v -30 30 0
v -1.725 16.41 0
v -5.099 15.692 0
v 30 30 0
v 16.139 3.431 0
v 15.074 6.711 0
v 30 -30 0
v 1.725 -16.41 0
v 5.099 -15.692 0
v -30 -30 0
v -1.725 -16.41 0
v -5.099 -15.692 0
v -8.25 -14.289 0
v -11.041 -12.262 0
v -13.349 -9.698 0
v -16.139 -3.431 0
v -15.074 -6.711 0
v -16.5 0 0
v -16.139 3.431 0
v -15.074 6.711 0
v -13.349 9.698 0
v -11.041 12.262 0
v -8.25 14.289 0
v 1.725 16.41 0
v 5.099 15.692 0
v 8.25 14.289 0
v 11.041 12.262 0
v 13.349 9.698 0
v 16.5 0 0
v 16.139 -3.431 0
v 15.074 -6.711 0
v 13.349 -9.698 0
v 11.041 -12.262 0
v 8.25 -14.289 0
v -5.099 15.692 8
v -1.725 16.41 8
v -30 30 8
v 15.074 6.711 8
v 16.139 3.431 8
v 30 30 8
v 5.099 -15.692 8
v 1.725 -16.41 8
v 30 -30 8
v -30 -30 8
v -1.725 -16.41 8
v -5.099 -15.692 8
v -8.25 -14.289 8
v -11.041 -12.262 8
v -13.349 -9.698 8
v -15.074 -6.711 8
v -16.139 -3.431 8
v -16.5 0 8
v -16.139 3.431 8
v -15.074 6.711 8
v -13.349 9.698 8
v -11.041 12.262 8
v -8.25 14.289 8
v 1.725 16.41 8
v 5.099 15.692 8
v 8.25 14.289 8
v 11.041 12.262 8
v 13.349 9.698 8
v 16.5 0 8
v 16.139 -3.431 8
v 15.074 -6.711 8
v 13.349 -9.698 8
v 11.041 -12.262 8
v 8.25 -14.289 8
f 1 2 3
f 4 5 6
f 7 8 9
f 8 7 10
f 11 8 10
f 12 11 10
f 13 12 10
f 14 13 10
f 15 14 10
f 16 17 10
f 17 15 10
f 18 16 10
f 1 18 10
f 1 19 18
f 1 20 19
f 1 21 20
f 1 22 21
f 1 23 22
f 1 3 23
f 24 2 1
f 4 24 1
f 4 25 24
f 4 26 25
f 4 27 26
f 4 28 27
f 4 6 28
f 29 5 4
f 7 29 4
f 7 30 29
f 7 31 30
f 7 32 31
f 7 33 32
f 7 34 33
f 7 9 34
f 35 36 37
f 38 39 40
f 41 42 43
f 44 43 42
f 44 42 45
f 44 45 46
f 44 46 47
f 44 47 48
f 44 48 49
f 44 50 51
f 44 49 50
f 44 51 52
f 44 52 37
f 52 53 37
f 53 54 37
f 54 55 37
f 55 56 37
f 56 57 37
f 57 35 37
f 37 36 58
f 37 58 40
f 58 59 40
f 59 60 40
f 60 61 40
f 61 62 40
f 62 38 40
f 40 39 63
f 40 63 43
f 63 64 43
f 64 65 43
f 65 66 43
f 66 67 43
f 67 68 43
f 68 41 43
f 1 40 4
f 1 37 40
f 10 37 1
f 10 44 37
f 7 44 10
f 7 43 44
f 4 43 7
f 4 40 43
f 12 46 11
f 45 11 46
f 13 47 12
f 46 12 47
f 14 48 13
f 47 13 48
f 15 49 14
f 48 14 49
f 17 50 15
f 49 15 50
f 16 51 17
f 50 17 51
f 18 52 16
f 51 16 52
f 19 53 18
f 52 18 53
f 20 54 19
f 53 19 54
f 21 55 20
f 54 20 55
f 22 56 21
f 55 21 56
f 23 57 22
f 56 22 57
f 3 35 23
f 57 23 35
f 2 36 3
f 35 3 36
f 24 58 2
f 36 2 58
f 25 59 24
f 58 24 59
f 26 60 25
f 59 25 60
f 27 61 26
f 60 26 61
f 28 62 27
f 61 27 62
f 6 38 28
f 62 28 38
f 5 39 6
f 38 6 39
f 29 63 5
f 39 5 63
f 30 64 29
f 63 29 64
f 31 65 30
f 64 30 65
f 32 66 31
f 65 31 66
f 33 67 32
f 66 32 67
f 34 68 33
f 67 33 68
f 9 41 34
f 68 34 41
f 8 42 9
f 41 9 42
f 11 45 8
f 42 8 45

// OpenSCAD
// the model's resolution
model_resolution = 50;


circle_template_inlay(
    dia = 11,
    bit_dia = 8,
    guide_dia = 30,
    guide_height = 8,
    size = 60,
    resolution = model_resolution);


// Hack a plunge router template using all parameters
// undef default values will be calculated/set automatically
module circle_template_inlay(
  dia,           // the circle's diameter
  bit_dia,       // the bit's diameter
  guide_dia,     // the template guide's diameter
  guide_height,  // the template guide's height
  guide_size,    // the base template's size (check according base template)
  resolution = model_resolution) {
    temp_dia = dia - bit_dia + guide_dia;
    if ((dia >= bit_dia) && (temp_dia < size-5)) {
        linear_extrude(height=guide_height) {
            difference() {
                square(size, center=true);
                circle(d = temp_dia);
            }
        }
    }
}
